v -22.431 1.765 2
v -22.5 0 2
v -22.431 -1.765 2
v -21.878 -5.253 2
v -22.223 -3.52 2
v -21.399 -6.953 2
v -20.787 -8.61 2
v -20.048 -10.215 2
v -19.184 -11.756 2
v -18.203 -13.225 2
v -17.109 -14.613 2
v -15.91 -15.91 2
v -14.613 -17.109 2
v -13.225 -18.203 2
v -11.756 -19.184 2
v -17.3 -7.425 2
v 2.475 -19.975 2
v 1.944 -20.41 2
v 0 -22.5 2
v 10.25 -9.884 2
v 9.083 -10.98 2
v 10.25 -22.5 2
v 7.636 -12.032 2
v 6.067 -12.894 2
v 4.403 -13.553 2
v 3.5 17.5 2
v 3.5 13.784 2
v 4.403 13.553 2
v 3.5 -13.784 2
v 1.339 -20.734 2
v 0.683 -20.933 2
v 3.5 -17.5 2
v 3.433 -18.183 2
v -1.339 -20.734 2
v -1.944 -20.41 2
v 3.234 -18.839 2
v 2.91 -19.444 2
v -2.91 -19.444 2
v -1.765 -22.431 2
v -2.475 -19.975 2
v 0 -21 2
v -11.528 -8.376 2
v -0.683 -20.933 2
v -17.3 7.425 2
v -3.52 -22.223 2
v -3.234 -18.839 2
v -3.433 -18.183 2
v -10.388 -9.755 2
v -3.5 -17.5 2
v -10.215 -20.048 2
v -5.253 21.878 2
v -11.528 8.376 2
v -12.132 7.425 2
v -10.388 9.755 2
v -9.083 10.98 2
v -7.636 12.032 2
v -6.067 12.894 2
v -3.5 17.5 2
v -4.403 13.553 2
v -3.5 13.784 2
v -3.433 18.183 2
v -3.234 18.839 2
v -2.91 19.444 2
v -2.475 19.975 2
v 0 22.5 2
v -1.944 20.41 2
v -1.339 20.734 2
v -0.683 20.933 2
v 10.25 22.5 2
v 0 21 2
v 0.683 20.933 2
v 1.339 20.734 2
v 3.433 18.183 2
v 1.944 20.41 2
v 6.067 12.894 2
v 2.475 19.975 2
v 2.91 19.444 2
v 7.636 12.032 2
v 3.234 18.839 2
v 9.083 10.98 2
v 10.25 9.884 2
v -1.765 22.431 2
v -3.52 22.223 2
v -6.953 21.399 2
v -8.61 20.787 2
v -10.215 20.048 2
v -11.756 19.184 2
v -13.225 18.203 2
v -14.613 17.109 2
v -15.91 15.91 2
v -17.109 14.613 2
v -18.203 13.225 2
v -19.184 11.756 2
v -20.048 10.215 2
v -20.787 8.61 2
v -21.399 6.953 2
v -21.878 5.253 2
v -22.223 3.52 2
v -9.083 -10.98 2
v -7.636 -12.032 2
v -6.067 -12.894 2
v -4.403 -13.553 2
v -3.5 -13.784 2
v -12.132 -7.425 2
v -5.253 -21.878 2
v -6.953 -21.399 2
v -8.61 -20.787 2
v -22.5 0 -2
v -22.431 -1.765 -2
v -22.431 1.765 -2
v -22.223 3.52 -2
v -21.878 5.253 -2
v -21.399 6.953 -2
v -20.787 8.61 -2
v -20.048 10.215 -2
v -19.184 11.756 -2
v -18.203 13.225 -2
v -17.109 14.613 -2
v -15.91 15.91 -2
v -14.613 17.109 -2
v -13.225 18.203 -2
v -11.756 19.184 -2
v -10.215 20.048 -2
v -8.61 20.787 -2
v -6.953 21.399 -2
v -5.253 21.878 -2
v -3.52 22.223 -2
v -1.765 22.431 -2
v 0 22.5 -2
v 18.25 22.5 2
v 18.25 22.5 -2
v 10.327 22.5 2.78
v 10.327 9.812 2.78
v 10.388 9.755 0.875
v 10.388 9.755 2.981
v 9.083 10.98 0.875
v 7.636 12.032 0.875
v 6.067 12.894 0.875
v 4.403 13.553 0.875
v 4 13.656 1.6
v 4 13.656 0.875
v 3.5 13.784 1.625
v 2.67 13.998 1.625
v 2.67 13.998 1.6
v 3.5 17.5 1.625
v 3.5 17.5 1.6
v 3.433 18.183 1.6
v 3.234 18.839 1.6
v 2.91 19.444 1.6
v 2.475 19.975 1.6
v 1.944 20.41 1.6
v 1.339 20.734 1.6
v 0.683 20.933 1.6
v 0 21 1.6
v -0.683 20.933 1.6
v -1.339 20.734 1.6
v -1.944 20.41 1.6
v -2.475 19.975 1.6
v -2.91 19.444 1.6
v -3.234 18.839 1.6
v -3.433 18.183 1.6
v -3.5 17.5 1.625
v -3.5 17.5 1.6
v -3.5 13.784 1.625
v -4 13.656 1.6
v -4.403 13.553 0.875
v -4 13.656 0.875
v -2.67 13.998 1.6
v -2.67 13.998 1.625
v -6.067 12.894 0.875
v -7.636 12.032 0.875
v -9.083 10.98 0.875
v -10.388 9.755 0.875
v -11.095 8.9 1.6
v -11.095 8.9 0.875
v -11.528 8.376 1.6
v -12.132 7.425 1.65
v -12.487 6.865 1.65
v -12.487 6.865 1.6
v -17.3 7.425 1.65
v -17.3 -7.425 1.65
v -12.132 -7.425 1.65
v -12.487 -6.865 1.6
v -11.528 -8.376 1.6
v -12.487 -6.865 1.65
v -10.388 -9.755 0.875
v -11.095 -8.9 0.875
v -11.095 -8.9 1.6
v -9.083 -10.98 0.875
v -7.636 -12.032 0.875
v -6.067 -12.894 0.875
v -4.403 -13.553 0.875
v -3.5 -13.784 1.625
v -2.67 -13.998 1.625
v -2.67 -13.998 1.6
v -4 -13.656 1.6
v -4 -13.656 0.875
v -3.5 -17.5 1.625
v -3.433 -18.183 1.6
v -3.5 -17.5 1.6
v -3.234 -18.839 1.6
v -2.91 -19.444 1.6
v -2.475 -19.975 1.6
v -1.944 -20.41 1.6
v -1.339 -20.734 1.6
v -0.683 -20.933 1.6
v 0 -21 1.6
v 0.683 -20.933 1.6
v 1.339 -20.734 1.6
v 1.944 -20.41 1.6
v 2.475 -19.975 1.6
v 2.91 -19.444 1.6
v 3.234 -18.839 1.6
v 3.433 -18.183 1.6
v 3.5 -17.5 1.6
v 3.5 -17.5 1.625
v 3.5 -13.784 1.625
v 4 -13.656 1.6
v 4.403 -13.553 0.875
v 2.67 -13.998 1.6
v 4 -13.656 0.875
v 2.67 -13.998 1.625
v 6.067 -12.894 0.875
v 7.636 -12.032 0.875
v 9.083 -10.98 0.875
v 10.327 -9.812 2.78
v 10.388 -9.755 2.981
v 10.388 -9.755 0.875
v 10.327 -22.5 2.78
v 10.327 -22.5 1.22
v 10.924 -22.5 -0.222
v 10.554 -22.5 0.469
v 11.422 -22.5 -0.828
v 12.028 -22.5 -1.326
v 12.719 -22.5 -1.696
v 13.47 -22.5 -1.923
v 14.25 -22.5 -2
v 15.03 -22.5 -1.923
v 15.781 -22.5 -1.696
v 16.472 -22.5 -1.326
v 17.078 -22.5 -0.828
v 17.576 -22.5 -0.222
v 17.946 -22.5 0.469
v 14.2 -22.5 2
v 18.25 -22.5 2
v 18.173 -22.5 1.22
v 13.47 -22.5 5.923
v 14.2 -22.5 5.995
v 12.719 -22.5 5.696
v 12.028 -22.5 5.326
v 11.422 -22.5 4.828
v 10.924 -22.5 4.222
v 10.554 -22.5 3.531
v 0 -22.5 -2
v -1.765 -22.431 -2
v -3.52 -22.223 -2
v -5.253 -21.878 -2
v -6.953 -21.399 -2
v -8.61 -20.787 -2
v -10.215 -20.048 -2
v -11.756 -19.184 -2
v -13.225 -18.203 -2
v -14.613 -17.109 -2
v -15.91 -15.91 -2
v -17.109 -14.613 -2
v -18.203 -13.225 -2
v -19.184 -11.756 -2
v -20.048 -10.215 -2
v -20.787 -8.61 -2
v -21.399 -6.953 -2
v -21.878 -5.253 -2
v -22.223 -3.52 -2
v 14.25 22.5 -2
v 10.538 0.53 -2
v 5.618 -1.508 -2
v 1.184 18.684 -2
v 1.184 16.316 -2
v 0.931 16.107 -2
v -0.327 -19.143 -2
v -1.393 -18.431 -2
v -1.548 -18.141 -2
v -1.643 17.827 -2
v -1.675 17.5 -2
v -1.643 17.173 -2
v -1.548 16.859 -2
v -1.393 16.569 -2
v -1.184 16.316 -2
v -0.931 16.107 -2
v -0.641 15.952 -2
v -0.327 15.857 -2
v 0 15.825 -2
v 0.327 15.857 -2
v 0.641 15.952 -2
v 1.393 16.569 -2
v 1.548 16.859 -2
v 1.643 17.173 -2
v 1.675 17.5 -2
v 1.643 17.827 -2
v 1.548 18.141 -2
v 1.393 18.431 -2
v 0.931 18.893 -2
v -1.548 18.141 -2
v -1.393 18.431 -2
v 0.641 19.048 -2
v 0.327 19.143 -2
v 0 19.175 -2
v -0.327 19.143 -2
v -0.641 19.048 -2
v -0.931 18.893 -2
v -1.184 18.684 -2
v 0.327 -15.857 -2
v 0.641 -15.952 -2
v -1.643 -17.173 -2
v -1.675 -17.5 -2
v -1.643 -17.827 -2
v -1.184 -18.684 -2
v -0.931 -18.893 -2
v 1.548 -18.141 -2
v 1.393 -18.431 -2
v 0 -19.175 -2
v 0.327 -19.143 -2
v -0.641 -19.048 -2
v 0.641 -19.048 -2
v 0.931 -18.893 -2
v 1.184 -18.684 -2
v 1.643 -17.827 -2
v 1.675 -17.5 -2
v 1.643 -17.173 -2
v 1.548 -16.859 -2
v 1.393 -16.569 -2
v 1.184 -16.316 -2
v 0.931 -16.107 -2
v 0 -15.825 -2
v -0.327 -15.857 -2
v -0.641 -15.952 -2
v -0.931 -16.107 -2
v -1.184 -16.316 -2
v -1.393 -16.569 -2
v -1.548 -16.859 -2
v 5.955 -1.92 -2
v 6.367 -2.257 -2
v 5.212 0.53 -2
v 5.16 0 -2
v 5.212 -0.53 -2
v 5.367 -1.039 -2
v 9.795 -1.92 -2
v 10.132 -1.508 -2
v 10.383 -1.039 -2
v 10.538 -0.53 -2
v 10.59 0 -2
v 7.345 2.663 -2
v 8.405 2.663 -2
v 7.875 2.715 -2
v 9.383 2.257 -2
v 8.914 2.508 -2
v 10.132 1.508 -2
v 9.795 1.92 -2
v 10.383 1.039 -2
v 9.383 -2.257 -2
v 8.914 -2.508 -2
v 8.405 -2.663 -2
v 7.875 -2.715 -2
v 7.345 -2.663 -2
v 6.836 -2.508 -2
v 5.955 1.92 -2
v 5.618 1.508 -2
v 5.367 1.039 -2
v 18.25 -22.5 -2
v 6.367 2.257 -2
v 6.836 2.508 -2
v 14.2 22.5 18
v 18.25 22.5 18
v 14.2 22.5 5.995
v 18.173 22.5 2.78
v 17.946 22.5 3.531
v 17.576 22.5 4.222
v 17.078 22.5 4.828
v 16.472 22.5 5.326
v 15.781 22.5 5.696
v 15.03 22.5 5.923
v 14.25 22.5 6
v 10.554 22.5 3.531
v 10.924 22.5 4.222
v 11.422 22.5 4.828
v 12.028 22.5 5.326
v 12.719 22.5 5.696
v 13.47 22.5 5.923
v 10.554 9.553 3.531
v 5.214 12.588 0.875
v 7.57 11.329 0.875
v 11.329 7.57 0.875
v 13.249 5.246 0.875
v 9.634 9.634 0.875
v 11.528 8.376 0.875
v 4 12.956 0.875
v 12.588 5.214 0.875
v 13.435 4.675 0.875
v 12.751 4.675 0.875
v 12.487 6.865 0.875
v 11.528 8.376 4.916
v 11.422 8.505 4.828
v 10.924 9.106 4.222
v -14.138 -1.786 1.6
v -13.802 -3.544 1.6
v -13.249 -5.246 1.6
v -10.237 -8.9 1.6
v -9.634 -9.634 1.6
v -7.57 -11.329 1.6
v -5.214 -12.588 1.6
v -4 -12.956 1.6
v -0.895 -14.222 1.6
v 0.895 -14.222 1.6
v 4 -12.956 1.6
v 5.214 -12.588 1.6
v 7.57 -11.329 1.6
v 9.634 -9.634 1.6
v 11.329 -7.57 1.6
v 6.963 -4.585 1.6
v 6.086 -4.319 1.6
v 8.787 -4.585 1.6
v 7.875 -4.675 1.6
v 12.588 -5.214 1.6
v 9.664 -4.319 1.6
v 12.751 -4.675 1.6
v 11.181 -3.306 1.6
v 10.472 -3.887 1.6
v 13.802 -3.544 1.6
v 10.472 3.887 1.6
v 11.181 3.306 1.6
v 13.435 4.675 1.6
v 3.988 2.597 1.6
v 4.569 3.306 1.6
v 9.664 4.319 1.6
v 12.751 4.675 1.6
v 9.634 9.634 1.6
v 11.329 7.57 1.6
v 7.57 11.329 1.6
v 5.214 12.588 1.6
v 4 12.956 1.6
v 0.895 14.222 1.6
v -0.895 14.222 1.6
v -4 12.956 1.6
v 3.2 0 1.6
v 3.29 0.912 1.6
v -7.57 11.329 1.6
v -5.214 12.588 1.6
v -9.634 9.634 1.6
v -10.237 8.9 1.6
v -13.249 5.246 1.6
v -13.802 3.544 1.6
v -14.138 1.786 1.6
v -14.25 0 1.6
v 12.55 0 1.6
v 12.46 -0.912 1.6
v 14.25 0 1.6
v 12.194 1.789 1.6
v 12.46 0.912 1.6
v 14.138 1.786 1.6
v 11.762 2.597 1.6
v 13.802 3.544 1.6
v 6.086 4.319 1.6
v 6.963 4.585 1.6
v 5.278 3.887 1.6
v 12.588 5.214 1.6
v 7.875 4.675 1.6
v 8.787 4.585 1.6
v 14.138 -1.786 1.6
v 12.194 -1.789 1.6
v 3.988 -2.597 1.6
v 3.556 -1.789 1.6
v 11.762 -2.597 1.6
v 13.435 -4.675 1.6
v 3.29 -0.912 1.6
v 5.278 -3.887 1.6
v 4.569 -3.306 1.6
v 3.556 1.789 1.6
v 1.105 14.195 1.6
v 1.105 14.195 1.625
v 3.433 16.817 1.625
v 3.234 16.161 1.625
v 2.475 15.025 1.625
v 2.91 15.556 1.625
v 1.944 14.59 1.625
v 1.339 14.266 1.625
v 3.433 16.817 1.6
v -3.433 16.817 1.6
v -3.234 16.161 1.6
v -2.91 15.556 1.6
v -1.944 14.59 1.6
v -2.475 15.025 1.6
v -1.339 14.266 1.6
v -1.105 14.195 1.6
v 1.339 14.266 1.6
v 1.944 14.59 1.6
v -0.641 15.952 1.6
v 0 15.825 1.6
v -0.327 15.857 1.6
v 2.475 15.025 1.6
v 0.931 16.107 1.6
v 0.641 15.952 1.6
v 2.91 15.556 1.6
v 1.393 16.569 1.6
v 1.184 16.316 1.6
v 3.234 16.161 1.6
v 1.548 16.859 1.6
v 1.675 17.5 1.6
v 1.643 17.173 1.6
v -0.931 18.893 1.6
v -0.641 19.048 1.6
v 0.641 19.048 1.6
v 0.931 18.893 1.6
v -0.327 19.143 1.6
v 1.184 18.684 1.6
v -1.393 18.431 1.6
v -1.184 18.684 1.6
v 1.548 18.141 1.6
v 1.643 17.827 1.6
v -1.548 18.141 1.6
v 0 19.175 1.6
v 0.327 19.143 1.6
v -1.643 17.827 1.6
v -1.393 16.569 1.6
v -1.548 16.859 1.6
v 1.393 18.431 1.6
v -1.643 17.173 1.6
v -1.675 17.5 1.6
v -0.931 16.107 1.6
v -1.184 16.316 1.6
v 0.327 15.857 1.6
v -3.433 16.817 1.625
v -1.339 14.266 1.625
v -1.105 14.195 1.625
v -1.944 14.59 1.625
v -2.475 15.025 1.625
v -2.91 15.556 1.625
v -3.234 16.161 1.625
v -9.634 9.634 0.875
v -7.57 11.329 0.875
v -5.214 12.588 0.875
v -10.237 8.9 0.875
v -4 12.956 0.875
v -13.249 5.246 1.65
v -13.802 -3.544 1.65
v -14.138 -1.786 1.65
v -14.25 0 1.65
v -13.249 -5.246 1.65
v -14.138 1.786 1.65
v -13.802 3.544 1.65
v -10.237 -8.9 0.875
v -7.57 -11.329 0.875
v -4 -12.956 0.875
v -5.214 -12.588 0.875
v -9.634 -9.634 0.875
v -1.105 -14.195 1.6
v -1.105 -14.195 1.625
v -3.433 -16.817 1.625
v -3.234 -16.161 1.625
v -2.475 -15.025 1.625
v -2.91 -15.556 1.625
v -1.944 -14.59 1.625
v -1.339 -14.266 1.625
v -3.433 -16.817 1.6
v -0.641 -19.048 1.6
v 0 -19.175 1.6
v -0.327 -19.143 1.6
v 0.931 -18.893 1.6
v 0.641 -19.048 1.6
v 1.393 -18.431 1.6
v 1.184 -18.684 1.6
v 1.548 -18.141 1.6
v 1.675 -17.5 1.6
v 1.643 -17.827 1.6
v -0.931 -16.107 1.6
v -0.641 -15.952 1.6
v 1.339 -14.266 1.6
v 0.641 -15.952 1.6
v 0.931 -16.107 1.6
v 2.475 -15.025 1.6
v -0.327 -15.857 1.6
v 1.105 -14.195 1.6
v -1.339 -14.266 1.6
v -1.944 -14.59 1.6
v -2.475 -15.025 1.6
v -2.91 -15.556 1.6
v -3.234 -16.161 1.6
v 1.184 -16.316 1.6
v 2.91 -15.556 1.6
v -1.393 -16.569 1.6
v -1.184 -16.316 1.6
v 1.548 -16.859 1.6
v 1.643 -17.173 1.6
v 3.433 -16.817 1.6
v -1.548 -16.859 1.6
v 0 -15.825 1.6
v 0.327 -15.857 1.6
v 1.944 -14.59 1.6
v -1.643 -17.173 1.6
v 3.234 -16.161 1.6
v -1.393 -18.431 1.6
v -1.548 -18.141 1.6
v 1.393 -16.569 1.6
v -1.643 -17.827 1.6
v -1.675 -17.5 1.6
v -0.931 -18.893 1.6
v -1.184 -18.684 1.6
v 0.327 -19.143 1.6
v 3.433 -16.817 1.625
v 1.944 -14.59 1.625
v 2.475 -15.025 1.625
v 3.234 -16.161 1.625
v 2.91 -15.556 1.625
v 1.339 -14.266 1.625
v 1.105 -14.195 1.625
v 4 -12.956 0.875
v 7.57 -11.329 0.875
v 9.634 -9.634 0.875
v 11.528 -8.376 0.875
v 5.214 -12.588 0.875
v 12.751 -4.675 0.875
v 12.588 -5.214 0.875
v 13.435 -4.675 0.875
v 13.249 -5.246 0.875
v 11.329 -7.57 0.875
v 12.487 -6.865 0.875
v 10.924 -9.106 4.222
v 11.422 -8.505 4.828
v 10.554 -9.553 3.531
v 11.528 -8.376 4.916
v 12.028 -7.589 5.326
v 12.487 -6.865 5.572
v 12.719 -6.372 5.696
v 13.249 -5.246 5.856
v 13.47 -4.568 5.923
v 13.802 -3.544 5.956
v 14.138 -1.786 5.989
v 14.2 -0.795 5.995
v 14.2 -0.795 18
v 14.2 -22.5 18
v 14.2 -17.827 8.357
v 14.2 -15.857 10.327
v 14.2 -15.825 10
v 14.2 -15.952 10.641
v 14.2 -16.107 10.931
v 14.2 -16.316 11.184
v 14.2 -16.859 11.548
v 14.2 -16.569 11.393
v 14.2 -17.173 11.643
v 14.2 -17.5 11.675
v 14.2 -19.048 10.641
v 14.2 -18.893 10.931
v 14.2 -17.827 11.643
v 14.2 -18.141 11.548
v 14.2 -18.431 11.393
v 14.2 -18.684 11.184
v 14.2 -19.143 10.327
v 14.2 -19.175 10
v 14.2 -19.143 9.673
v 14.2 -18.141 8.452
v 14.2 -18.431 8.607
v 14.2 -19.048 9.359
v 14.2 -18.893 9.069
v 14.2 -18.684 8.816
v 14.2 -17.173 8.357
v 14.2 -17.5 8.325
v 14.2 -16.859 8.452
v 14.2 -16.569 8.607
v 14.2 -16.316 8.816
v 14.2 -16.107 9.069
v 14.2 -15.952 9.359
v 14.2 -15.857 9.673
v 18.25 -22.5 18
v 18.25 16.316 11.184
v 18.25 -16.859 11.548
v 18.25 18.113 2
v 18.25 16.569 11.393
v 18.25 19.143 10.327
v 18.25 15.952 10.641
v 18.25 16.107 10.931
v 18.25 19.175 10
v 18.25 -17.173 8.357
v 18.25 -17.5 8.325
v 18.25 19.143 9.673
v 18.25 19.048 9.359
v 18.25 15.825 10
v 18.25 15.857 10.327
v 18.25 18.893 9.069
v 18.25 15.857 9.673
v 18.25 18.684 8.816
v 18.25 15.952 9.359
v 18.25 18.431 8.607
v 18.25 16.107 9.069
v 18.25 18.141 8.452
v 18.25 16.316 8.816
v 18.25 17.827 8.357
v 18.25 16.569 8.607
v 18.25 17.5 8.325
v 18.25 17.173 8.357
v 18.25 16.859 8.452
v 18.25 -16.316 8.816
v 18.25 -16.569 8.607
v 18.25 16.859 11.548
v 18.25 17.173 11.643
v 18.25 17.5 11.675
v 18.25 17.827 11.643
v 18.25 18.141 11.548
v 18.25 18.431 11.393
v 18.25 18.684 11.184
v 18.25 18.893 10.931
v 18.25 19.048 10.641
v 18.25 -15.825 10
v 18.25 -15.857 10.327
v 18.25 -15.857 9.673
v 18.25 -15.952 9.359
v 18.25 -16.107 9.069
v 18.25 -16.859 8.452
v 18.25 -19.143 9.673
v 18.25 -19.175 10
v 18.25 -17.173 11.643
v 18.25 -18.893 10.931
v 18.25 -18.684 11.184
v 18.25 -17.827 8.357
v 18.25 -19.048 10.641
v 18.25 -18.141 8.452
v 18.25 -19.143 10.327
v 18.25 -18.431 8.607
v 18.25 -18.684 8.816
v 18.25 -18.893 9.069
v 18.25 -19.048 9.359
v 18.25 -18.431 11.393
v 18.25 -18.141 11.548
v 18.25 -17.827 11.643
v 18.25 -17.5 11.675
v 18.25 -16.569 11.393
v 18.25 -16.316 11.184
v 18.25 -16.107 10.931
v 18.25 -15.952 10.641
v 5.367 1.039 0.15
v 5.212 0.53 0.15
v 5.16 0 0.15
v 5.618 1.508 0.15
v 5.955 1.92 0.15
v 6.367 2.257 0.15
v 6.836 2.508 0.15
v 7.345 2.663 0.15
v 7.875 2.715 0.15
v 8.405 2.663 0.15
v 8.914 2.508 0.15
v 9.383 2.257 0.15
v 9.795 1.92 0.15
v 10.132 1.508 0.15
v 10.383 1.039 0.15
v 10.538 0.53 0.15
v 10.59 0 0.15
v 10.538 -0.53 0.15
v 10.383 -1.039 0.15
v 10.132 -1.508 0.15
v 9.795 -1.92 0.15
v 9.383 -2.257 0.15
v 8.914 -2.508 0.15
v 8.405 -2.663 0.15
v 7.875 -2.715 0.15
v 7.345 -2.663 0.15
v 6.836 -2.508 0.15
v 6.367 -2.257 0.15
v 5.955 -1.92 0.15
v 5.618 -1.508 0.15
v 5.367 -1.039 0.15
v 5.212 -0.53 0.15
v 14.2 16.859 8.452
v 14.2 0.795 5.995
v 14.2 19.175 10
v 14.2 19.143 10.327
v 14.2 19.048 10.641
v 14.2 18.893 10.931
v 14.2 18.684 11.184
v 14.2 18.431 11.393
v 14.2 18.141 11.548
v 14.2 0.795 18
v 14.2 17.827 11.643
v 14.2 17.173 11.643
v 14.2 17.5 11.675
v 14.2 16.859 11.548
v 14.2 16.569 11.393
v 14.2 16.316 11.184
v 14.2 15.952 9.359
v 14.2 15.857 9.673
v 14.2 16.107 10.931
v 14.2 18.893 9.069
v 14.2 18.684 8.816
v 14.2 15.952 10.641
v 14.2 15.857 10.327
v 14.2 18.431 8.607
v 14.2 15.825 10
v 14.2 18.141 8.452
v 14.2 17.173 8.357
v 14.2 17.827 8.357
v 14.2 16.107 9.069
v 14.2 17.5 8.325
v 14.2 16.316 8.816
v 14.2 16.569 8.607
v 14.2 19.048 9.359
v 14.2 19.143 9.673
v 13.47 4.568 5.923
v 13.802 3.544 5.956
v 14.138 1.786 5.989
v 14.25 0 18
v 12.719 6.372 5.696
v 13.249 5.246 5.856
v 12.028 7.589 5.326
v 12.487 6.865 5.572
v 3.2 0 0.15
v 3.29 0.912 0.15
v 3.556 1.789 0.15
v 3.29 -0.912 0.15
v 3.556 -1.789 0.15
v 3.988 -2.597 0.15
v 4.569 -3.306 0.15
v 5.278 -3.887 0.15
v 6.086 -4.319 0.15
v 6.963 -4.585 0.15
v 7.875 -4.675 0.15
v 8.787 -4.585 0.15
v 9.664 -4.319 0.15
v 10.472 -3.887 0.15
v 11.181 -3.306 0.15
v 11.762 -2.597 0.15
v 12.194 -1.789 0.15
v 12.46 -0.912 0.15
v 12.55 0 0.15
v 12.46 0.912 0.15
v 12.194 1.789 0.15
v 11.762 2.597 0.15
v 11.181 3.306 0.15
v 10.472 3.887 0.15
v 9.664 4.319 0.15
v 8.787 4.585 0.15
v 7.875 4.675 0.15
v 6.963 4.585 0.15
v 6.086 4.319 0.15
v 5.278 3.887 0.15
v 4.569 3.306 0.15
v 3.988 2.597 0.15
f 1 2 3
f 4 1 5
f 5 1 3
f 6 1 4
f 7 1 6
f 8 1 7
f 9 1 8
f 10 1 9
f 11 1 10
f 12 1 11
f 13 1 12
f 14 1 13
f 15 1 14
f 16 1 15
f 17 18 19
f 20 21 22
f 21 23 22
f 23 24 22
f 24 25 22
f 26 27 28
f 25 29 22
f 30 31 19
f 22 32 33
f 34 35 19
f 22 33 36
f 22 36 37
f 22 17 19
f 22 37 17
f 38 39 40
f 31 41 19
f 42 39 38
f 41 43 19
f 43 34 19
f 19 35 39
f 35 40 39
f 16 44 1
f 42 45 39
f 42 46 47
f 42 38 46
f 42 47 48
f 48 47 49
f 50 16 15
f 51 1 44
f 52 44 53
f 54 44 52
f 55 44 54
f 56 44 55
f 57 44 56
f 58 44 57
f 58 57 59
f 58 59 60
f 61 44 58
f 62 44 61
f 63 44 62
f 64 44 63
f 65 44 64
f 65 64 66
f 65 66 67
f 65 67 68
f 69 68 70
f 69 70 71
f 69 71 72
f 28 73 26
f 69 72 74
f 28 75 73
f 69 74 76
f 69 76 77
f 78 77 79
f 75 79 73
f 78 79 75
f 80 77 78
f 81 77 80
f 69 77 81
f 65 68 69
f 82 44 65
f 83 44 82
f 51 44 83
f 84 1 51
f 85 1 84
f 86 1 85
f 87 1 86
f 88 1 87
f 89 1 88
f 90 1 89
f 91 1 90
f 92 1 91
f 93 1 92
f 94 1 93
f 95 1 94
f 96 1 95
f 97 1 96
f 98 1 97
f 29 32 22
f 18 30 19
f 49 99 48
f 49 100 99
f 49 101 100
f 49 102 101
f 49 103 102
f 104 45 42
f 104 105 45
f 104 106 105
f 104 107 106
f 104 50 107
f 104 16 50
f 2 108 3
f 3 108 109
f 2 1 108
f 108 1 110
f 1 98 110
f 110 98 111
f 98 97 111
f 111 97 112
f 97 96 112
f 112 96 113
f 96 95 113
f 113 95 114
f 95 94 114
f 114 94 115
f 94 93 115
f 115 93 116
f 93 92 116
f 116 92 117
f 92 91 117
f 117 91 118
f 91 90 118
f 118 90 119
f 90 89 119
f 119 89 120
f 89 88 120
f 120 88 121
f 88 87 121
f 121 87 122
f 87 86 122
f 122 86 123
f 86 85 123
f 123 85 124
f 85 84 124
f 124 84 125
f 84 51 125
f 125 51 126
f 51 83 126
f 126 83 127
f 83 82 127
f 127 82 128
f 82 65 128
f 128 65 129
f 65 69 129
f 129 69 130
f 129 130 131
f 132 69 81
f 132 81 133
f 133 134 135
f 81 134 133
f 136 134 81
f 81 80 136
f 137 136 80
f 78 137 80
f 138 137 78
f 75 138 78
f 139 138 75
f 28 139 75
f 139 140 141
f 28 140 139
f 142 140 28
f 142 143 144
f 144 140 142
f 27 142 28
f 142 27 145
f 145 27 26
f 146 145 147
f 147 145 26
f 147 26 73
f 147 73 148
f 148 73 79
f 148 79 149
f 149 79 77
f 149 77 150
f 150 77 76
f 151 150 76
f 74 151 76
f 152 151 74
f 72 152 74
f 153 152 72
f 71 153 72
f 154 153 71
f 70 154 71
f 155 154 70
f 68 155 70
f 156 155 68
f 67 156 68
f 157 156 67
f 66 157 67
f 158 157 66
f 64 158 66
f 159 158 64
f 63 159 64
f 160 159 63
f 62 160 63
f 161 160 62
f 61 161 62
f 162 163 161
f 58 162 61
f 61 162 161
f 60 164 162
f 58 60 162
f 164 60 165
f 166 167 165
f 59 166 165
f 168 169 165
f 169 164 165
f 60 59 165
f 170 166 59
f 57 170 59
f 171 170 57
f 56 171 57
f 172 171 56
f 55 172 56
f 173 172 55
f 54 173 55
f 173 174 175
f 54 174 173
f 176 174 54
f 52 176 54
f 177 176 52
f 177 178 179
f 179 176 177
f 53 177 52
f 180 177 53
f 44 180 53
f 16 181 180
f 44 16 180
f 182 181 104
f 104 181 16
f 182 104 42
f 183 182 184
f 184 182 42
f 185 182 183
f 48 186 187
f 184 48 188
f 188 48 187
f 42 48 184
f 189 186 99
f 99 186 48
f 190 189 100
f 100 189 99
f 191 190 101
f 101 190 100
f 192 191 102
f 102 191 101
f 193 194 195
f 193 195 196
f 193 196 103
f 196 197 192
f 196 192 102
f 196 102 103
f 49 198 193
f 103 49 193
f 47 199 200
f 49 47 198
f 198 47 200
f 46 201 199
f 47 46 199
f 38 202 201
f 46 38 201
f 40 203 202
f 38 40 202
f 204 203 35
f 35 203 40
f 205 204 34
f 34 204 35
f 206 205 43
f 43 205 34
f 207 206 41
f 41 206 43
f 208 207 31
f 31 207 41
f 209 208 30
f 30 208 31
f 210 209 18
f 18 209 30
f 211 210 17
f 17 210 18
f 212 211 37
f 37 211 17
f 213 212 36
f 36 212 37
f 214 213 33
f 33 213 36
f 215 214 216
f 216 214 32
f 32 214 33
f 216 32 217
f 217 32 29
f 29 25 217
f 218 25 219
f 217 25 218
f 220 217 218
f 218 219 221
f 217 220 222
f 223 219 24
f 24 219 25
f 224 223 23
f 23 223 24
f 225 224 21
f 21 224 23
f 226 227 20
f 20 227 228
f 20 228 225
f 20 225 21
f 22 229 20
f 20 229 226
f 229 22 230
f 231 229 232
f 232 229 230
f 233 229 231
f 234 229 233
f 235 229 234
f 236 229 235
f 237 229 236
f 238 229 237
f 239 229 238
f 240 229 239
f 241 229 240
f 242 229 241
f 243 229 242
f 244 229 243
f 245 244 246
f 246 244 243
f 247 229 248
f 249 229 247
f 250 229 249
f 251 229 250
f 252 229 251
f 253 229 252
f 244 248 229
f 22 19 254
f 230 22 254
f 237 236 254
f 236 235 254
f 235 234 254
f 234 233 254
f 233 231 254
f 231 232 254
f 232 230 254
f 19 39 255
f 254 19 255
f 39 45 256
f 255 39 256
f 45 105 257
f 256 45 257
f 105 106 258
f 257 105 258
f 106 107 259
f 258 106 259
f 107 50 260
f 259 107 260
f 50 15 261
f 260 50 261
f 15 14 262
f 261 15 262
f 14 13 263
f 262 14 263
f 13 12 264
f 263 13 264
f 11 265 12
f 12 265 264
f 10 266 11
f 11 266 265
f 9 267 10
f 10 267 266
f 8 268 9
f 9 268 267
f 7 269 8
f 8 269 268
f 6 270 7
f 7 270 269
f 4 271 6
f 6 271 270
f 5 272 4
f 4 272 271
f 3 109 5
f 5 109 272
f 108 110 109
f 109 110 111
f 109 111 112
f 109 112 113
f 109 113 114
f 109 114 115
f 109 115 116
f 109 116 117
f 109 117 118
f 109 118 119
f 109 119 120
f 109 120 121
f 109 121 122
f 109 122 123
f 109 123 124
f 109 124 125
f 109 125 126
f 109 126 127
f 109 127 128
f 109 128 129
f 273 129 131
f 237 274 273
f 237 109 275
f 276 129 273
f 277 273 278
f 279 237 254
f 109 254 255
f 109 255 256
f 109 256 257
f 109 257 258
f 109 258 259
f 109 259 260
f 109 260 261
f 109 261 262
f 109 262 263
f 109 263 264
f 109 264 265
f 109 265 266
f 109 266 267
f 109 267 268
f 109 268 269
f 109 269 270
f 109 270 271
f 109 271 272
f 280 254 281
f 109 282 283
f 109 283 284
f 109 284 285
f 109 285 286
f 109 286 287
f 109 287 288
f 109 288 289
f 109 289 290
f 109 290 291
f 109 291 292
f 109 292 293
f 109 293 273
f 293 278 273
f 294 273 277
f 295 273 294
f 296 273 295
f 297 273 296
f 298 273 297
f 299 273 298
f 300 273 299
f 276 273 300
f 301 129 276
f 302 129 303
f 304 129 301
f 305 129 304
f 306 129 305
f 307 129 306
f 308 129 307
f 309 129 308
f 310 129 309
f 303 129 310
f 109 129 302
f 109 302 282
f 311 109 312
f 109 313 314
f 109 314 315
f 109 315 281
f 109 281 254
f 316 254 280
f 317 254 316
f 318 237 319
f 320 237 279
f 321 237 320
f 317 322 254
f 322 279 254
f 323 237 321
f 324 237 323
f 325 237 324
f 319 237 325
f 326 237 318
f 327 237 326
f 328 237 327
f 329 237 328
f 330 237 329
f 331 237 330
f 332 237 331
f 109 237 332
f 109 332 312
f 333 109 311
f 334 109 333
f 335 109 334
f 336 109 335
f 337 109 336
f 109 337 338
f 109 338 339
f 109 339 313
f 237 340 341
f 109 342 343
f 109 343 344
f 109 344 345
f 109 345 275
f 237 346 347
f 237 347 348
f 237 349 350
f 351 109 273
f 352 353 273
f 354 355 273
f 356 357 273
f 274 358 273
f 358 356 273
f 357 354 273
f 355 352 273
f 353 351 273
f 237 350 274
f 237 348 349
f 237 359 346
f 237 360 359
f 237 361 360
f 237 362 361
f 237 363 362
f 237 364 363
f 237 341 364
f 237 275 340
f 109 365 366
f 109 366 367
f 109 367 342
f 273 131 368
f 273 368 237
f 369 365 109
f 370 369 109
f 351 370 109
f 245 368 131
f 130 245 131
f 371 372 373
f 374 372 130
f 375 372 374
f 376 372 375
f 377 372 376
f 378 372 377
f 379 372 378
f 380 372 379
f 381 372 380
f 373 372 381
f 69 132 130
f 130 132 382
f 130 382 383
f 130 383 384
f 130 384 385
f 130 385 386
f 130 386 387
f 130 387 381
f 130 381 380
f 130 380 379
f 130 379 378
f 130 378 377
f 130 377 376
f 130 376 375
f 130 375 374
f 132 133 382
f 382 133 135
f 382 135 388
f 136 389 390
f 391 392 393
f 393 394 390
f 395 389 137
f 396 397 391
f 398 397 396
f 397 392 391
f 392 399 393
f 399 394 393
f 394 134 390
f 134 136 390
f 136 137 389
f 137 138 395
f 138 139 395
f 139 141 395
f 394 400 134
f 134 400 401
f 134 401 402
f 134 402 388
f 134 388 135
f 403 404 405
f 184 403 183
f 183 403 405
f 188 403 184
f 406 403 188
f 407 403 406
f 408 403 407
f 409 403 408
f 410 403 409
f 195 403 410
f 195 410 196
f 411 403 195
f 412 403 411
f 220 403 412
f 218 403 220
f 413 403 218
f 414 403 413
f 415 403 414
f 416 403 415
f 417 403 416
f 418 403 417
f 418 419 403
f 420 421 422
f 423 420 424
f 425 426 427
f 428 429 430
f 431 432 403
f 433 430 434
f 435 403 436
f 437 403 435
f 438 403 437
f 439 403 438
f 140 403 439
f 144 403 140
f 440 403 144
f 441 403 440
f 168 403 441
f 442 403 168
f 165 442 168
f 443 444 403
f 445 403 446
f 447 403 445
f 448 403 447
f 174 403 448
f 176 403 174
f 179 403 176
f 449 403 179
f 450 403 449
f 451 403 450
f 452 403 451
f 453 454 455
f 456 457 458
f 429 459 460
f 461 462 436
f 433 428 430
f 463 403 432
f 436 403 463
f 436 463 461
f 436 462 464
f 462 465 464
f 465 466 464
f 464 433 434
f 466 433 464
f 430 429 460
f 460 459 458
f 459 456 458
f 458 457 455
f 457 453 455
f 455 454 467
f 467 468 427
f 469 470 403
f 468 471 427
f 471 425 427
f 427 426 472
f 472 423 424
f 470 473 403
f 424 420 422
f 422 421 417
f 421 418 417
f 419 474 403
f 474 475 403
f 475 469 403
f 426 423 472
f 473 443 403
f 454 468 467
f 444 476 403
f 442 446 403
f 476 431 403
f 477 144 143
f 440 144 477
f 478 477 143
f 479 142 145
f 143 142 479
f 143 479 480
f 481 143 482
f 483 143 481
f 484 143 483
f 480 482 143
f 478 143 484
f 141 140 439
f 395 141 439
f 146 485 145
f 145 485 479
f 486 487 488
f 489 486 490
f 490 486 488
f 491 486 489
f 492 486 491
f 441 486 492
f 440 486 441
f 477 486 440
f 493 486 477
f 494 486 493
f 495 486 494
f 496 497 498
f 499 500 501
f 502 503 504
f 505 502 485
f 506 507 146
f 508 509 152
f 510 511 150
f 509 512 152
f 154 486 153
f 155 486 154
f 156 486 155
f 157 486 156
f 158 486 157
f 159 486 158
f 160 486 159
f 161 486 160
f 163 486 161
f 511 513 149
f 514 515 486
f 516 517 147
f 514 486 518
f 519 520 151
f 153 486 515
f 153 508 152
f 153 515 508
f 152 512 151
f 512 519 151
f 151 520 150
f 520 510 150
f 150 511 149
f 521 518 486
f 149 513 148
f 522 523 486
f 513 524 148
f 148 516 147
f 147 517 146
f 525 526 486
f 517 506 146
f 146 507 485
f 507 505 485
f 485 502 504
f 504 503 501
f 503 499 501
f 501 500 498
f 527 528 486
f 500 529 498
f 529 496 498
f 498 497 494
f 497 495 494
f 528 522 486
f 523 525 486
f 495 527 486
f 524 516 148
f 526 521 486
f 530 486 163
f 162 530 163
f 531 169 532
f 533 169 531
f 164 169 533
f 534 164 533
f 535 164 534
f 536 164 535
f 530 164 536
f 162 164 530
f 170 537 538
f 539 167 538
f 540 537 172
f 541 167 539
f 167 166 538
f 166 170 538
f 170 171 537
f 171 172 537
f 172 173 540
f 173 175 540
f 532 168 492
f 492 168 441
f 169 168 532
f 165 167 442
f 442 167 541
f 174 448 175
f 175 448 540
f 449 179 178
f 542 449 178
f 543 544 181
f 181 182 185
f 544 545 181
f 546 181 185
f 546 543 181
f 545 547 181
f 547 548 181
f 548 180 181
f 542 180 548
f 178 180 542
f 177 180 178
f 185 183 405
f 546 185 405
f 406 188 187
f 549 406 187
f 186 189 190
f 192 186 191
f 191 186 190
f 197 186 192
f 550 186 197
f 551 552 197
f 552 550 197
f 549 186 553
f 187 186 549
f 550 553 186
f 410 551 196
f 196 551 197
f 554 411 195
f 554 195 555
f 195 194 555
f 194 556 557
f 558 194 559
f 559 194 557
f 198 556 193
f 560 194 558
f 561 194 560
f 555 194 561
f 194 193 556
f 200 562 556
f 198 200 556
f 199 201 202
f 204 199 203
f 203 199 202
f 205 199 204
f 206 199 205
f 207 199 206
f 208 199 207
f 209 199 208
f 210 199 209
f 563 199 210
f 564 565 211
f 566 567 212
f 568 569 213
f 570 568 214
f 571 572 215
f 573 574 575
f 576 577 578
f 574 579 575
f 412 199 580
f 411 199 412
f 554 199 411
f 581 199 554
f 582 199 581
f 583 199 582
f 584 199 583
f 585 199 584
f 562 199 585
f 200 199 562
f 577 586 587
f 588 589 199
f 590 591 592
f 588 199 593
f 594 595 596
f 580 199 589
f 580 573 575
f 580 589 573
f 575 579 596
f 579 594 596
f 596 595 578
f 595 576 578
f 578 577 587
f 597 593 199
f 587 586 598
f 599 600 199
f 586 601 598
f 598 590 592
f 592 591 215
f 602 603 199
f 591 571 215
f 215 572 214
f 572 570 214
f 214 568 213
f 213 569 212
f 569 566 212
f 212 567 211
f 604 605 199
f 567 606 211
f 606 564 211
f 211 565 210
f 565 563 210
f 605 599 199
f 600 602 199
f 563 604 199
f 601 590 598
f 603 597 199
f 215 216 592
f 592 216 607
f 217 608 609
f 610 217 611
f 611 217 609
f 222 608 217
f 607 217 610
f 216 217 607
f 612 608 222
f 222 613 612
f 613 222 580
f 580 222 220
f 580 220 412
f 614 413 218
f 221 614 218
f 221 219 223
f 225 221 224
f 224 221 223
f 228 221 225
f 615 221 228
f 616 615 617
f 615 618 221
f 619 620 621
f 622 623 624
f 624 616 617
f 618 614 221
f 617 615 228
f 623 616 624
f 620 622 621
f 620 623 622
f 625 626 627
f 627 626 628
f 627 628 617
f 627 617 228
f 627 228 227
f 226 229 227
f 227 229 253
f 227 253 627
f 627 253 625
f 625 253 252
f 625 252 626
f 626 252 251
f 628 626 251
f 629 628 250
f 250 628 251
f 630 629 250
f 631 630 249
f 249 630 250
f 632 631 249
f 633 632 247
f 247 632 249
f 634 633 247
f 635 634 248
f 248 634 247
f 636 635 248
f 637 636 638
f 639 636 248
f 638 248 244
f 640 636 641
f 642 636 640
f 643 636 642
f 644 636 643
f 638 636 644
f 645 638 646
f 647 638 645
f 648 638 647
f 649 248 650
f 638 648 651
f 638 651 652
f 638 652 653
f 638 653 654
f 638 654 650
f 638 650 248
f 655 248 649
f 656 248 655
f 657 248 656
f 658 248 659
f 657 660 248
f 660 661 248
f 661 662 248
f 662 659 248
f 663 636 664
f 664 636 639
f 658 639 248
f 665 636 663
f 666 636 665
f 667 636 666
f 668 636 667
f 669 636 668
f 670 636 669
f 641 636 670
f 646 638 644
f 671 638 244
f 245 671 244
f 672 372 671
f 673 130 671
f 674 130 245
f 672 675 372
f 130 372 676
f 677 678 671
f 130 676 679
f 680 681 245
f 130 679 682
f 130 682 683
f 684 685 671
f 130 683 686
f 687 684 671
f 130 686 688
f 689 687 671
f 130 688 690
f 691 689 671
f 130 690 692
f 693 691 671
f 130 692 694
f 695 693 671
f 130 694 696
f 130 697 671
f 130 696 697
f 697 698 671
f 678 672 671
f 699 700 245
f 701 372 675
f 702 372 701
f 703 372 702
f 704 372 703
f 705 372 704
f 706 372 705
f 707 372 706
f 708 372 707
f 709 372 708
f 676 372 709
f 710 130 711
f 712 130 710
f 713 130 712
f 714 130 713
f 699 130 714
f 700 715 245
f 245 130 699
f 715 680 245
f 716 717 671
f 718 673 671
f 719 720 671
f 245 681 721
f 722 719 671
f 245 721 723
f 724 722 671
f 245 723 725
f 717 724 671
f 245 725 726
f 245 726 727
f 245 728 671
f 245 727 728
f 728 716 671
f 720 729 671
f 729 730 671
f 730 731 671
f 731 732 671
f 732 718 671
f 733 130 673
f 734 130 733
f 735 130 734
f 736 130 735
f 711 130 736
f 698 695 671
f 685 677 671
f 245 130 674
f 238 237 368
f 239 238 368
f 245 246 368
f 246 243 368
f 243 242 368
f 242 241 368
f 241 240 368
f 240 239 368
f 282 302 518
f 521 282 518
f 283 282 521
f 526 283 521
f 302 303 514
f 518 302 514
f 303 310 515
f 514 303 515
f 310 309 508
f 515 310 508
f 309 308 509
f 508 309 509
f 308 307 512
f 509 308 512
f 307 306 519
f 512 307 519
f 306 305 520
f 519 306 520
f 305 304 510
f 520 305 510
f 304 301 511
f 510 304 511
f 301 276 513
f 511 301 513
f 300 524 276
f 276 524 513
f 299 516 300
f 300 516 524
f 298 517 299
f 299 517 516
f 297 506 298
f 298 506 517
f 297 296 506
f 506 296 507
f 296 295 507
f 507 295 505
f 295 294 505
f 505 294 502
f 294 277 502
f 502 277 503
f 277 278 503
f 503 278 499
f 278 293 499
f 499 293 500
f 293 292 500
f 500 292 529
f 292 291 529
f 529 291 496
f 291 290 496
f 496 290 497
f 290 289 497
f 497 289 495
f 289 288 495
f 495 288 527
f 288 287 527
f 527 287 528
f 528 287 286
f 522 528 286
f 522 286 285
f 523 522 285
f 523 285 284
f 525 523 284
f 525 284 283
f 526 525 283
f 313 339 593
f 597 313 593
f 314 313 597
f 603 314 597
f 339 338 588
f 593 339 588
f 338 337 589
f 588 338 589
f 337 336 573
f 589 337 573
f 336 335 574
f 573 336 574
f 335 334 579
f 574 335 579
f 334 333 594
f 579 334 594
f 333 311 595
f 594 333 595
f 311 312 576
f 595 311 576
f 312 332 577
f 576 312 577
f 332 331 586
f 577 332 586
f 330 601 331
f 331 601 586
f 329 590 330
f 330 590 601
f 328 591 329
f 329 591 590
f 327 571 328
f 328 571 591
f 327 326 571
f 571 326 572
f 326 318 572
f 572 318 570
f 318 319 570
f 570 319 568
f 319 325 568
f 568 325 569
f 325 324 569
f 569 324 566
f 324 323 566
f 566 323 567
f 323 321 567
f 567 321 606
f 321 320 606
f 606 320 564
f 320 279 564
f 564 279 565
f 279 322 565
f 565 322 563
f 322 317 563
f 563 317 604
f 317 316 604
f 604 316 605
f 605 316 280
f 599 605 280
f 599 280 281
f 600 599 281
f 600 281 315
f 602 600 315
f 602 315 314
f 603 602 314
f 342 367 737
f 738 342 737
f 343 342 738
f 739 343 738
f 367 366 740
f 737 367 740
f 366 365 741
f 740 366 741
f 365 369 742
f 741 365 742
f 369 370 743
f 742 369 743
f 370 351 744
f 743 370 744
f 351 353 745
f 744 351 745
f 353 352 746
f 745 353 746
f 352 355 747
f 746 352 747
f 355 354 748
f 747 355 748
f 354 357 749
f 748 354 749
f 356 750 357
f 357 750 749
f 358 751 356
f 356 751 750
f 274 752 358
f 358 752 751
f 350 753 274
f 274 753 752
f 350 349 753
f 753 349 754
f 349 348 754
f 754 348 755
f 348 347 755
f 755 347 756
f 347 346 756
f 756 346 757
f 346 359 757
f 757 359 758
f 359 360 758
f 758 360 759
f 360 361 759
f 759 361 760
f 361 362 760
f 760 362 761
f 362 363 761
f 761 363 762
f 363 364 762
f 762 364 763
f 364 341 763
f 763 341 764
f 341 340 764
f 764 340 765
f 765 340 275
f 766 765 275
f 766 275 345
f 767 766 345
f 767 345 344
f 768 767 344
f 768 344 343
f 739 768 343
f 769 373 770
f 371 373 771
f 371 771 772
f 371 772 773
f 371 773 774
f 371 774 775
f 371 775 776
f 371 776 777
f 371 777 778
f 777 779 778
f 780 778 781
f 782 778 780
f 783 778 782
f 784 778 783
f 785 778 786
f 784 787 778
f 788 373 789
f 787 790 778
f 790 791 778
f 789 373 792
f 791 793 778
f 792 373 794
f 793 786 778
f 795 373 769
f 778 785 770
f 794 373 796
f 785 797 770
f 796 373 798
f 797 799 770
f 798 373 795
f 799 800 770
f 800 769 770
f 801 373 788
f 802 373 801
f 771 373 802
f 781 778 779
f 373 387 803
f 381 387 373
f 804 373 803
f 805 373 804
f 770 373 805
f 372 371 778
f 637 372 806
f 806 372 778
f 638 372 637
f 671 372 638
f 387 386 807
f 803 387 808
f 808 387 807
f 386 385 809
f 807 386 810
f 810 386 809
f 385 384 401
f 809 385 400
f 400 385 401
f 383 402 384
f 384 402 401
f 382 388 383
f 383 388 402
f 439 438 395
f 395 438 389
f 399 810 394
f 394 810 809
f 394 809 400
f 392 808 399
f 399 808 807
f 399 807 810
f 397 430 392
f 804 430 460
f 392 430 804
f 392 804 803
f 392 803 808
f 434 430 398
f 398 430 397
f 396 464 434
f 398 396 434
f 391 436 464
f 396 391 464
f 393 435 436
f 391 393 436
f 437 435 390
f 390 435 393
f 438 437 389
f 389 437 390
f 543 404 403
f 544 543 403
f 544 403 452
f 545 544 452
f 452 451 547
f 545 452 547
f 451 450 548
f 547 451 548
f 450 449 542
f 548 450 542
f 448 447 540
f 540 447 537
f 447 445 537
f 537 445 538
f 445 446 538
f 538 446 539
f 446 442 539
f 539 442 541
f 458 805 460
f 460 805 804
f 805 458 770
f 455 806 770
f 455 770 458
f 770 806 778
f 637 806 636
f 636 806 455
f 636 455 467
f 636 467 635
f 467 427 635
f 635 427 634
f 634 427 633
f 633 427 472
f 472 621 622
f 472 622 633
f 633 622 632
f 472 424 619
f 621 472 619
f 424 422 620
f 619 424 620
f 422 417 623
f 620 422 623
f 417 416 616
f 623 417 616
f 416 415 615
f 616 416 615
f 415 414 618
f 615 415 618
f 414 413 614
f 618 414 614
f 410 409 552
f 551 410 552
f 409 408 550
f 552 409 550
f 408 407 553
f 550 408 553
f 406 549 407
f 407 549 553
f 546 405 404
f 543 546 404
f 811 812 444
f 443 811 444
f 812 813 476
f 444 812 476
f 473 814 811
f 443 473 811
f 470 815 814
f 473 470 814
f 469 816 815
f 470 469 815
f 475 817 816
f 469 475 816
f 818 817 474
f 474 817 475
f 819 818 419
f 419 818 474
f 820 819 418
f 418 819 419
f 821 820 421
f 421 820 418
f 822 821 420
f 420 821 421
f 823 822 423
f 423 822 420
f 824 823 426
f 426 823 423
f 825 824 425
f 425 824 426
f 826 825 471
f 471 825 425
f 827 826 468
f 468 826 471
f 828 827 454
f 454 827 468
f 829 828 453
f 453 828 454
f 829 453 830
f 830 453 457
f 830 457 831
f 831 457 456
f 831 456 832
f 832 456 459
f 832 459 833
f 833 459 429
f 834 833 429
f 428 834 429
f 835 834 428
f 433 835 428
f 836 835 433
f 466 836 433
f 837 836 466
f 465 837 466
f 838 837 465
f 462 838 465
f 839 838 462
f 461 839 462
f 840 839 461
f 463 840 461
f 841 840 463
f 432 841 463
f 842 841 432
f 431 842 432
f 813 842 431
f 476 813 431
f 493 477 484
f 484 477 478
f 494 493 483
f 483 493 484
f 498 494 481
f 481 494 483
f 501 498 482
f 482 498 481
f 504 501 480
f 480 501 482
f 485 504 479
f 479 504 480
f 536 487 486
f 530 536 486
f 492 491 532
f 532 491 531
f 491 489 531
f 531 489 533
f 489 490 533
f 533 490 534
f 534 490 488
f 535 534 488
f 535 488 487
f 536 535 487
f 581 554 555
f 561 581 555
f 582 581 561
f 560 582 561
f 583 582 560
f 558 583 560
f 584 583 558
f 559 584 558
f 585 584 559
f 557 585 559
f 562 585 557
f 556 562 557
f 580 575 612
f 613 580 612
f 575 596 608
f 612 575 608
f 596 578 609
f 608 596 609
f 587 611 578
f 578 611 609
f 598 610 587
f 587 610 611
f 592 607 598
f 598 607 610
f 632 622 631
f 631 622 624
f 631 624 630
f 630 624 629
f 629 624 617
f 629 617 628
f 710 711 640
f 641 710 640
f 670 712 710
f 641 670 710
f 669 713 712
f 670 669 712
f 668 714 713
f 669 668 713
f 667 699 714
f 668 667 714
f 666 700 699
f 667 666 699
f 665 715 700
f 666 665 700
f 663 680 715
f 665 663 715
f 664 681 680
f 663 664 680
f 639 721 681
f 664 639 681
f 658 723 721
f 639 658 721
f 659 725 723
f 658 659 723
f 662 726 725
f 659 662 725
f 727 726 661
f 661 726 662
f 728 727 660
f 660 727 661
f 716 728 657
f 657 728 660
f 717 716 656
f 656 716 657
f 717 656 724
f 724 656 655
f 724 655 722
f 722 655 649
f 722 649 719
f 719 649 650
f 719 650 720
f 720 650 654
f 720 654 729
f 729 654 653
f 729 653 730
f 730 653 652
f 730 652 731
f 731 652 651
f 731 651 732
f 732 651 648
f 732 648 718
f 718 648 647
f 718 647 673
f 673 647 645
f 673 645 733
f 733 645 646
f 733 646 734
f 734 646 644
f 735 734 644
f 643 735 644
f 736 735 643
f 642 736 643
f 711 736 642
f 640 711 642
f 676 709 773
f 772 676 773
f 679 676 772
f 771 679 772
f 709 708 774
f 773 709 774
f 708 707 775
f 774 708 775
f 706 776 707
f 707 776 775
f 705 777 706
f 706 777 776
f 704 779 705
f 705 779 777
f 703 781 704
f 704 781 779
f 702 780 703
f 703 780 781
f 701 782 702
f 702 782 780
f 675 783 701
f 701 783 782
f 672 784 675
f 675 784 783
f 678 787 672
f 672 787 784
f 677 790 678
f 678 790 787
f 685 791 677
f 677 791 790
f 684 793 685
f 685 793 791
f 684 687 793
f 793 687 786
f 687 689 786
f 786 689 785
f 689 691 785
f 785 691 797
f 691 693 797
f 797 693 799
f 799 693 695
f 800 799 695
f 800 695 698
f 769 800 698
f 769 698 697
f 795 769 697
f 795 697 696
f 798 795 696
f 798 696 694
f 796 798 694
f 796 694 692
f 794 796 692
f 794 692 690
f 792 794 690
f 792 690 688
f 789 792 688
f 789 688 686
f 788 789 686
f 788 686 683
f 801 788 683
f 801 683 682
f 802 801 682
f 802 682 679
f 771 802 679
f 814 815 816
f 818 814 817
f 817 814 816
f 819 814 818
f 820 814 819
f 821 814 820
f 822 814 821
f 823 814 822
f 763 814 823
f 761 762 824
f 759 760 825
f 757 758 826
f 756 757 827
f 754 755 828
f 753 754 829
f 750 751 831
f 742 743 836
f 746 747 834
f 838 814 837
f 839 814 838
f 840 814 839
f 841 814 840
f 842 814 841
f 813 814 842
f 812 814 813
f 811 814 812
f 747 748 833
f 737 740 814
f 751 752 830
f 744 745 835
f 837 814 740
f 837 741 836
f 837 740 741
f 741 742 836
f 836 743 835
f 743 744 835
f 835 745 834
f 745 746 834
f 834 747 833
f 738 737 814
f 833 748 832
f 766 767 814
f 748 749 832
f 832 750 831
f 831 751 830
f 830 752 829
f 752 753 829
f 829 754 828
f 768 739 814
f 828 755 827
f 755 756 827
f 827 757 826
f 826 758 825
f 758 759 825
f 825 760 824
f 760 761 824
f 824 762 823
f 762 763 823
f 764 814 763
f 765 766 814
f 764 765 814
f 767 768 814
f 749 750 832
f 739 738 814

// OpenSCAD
// Bracket for  28BYJ-48 stepper motor
// 28BYJ-48 model from RGriffoGoes www.thingiverse.com/thing:204734
// added details by J.Beale 21 July 2014
// Bracket by J.Beale 9 Aug 2014

slop = 0.25;  // printer tolerance

// =========================================================
// stepper motor body model

MBH = 18.8;   // motor body height
MBD = 28.25+slop;  // motor body OD
SBD = 9.1+slop;    // shaft boss OD
SBH = 1.45;   // shaft boss height above motor body
SBO = 7.875;  // offset of shaft/boss center from motor center
SHD = 4.93+slop*2;   // motor shaft OD+ countersink for boss
//SHD = 11.9+slop;   // motor shaft OD (larger clearance hole)
SHDF = 3.0;   // motor shaft diameter, across flats
SHHF = 6.0;   // motor shaft flats height, or depth in from end
SHHF = 0.0;   // assume round shaft for purposes of bracket
SHH = 9.75;   // height of shaft above motor body 

MBFH = 0.7;   // height of body edge flange protruding above surface
MBFW = 1.0+slop;   // width of edge flange
MBFNW = 8;    // width of notch in edge flange
MBFNW2 = 17.8;  // width of edge flange notch above wiring box

MHCC = 35.0;  // mounting hole center-to-center
MTH  = 0.8;   // mounting tab thickness
MTW  = 7.0;   // mounting tab width
//MTHID = 4.0;  // mounting tab hole inner diameter
MTHID = 3.0;  // mounting tab hole inner diameter
WBH  = 16.7;  // plastic wiring box height
WBW  = 14.6+slop;  // plastic wiring box width
WBD  = 31.3+slop;  // body diameter to outer surface of wiring box

WRD = 1.0;     // diameter of electrical wires
WRL = 30;      // length of electrical wires
WRO = 2.2;		// offset of wires below top motor surface
// =========================================================
// right-angle bracket for motor

MSOD = 5.9 + slop;  // M3 mounting screw head diameter
// MSTH = 2.0;  // M3 screw head thickness (for countersink)
MSTH = 0; // set to zero for no screwhead countersink
MSSD = 3.1 + slop;  // M3 screw diameter clearance hole
Bthick = 4;  // thickness of bracket
Bdia = (MHCC+10);  // diameter of bracket face

// =========================================================
fn = 80;
eps = 0.05;   // small number to avoid coincident faces


module StepMotor28BYJ()
{
  difference(){
    union(){
	   color("gray") translate([0,0,-(MBH+MBFH)/2])
		  difference() {  // flange at top rim
         cylinder(h = MBFH+eps, r = MBD/2, center = true, $fn = 50);
         cylinder(h = MBFH+2*eps, r = (MBD-MBFW)/2, center = true, $fn = 32);
			cube([MBFNW,MHCC,MBFH*2],center=true); // notches in rim
			cube([MBD+2*MBFW,SBD,MBFH*2],center=true);
		   translate([-MBD/2,0,0]) cube([MBD,MBFNW2,MBFH*2],center=true);
        }
		color("gray") // motor body
			cylinder(h = MBH, r = MBD/2, center = true, $fn = 50);
		color("gray") translate([SBO,0,-SBH])	// shaft boss
			cylinder(h = MBH, r = SBD/2, center = true, $fn = 32);

		translate([SBO,0,-SHH])	// motor shaft
        difference() {
			color("gold") cylinder(h = MBH, r = SHD/2, center = true, $fn = 32);
				// shaft flats
		   color("red") translate([(SHD+SHDF)/2,0,-(eps+MBH-SHHF)/2]) 
				cube([SHD,SHD,SHHF], center = true);
		   color("red") translate([-(SHD+SHDF)/2,0,-(eps+MBH-SHHF)/2]) 
				cube([SHD,SHD,SHHF], center = true);
        }


		color("Silver") translate([0,0,-(MBH-MTH-eps)/2]) // mounting tab 
			cube([MTW,MHCC,MTH], center = true);				
		color("Silver") translate([0,MHCC/2,-(MBH-MTH)/2]) // mt.tab rounded end
			cylinder(h = MTH, r = MTW/2, center = true, $fn = 32);
		color("Silver") translate([0,-MHCC/2,-(MBH-MTH)/2]) // mt.tab rounded end
			cylinder(h = MTH, r = MTW/2, center = true, $fn = 32);


		color("blue") translate([-(WBD-MBD),0,eps-(MBH-WBH)/2]) // plastic wire box
			cube([MBD,WBW,WBH], center = true);
	   color("blue") translate([-2,0,0])	
			cube([24.5,16,15], center = true);
		}

				// mounting holes in tabs on side
		color("red") translate([0,MHCC/2,-MBH/2])	
				cylinder(h = 2, r = MTHID/2, center = true, $fn = 32);
		color("red") translate([0,-MHCC/2,-MBH/2])	
				cylinder(h = 2, r = MTHID/2, center = true, $fn = 32);
		}
}

module MOT() {
 translate([0,0,-MBH/2]) 
 rotate([180,0,0]) StepMotor28BYJ();  // motor body (without wires)
}


module bracket() {
difference() {
 union() {
  translate([0,0,-2]) cylinder(h=Bthick, r=Bdia/2, $fn=fn);  // round face
  translate([-eps + MBD/2,-Bdia/2,-20+Bthick/2]) 
		cube([4+eps,Bdia,20]); // flange
  translate([-0,-Bdia/2,-Bthick/2]) 
	cube([Bdia,Bdia,Bthick]); // square edge joining round face to flange
  translate([MBD/2,Bdia/2,-Bthick/2]) rotate([90,0,0]) 
	cylinder(r=Bthick,h=Bdia,$fn=32); // round fillet at flange
 }
 union() {
   translate([4+MBD/2,-MBD,-MBD]) cube([MBD*2,MBD*2,MBD*2]);
   translate([0,MHCC/2,-10])	// motor mounting bolt
				cylinder(h = 30, r = MSSD/2, center = true, $fn = 32);
   translate([0,-MHCC/2,-10])	// motor mounting bole
				cylinder(h = 30, r = MSSD/2, center = true, $fn = 32);
   translate([10,MHCC/2,-10]) rotate([0,90,0]) 	// flange mounting bolt
				cylinder(h = 30, r = MSSD/2, center = true, $fn = 32);
   translate([10,-MHCC/2,-10]) rotate([0,90,0]) 	// flange mounting bolt
				cylinder(h = 30, r = MSSD/2, center = true, $fn = 32);

   color("white") translate([0,MHCC/2,((Bthick/2) - MSTH + eps)]) 
	 cylinder(r=MSOD/2, h=MSTH, $fn=25); // motor screw countersink
   color("white") translate([0,-MHCC/2,((Bthick/2) - MSTH + eps)])  
	 cylinder(r=MSOD/2, h=MSTH, $fn=25); // motor screw countersink

   translate([0,0,-1.6]) MOT(); // body of motor
   //translate([0,0,-10]) cube([50,50,50]); // DEBUG cutaway view
 }
}
} // end module()

rotate([180,0,0]) bracket();  // show the motor bracket
